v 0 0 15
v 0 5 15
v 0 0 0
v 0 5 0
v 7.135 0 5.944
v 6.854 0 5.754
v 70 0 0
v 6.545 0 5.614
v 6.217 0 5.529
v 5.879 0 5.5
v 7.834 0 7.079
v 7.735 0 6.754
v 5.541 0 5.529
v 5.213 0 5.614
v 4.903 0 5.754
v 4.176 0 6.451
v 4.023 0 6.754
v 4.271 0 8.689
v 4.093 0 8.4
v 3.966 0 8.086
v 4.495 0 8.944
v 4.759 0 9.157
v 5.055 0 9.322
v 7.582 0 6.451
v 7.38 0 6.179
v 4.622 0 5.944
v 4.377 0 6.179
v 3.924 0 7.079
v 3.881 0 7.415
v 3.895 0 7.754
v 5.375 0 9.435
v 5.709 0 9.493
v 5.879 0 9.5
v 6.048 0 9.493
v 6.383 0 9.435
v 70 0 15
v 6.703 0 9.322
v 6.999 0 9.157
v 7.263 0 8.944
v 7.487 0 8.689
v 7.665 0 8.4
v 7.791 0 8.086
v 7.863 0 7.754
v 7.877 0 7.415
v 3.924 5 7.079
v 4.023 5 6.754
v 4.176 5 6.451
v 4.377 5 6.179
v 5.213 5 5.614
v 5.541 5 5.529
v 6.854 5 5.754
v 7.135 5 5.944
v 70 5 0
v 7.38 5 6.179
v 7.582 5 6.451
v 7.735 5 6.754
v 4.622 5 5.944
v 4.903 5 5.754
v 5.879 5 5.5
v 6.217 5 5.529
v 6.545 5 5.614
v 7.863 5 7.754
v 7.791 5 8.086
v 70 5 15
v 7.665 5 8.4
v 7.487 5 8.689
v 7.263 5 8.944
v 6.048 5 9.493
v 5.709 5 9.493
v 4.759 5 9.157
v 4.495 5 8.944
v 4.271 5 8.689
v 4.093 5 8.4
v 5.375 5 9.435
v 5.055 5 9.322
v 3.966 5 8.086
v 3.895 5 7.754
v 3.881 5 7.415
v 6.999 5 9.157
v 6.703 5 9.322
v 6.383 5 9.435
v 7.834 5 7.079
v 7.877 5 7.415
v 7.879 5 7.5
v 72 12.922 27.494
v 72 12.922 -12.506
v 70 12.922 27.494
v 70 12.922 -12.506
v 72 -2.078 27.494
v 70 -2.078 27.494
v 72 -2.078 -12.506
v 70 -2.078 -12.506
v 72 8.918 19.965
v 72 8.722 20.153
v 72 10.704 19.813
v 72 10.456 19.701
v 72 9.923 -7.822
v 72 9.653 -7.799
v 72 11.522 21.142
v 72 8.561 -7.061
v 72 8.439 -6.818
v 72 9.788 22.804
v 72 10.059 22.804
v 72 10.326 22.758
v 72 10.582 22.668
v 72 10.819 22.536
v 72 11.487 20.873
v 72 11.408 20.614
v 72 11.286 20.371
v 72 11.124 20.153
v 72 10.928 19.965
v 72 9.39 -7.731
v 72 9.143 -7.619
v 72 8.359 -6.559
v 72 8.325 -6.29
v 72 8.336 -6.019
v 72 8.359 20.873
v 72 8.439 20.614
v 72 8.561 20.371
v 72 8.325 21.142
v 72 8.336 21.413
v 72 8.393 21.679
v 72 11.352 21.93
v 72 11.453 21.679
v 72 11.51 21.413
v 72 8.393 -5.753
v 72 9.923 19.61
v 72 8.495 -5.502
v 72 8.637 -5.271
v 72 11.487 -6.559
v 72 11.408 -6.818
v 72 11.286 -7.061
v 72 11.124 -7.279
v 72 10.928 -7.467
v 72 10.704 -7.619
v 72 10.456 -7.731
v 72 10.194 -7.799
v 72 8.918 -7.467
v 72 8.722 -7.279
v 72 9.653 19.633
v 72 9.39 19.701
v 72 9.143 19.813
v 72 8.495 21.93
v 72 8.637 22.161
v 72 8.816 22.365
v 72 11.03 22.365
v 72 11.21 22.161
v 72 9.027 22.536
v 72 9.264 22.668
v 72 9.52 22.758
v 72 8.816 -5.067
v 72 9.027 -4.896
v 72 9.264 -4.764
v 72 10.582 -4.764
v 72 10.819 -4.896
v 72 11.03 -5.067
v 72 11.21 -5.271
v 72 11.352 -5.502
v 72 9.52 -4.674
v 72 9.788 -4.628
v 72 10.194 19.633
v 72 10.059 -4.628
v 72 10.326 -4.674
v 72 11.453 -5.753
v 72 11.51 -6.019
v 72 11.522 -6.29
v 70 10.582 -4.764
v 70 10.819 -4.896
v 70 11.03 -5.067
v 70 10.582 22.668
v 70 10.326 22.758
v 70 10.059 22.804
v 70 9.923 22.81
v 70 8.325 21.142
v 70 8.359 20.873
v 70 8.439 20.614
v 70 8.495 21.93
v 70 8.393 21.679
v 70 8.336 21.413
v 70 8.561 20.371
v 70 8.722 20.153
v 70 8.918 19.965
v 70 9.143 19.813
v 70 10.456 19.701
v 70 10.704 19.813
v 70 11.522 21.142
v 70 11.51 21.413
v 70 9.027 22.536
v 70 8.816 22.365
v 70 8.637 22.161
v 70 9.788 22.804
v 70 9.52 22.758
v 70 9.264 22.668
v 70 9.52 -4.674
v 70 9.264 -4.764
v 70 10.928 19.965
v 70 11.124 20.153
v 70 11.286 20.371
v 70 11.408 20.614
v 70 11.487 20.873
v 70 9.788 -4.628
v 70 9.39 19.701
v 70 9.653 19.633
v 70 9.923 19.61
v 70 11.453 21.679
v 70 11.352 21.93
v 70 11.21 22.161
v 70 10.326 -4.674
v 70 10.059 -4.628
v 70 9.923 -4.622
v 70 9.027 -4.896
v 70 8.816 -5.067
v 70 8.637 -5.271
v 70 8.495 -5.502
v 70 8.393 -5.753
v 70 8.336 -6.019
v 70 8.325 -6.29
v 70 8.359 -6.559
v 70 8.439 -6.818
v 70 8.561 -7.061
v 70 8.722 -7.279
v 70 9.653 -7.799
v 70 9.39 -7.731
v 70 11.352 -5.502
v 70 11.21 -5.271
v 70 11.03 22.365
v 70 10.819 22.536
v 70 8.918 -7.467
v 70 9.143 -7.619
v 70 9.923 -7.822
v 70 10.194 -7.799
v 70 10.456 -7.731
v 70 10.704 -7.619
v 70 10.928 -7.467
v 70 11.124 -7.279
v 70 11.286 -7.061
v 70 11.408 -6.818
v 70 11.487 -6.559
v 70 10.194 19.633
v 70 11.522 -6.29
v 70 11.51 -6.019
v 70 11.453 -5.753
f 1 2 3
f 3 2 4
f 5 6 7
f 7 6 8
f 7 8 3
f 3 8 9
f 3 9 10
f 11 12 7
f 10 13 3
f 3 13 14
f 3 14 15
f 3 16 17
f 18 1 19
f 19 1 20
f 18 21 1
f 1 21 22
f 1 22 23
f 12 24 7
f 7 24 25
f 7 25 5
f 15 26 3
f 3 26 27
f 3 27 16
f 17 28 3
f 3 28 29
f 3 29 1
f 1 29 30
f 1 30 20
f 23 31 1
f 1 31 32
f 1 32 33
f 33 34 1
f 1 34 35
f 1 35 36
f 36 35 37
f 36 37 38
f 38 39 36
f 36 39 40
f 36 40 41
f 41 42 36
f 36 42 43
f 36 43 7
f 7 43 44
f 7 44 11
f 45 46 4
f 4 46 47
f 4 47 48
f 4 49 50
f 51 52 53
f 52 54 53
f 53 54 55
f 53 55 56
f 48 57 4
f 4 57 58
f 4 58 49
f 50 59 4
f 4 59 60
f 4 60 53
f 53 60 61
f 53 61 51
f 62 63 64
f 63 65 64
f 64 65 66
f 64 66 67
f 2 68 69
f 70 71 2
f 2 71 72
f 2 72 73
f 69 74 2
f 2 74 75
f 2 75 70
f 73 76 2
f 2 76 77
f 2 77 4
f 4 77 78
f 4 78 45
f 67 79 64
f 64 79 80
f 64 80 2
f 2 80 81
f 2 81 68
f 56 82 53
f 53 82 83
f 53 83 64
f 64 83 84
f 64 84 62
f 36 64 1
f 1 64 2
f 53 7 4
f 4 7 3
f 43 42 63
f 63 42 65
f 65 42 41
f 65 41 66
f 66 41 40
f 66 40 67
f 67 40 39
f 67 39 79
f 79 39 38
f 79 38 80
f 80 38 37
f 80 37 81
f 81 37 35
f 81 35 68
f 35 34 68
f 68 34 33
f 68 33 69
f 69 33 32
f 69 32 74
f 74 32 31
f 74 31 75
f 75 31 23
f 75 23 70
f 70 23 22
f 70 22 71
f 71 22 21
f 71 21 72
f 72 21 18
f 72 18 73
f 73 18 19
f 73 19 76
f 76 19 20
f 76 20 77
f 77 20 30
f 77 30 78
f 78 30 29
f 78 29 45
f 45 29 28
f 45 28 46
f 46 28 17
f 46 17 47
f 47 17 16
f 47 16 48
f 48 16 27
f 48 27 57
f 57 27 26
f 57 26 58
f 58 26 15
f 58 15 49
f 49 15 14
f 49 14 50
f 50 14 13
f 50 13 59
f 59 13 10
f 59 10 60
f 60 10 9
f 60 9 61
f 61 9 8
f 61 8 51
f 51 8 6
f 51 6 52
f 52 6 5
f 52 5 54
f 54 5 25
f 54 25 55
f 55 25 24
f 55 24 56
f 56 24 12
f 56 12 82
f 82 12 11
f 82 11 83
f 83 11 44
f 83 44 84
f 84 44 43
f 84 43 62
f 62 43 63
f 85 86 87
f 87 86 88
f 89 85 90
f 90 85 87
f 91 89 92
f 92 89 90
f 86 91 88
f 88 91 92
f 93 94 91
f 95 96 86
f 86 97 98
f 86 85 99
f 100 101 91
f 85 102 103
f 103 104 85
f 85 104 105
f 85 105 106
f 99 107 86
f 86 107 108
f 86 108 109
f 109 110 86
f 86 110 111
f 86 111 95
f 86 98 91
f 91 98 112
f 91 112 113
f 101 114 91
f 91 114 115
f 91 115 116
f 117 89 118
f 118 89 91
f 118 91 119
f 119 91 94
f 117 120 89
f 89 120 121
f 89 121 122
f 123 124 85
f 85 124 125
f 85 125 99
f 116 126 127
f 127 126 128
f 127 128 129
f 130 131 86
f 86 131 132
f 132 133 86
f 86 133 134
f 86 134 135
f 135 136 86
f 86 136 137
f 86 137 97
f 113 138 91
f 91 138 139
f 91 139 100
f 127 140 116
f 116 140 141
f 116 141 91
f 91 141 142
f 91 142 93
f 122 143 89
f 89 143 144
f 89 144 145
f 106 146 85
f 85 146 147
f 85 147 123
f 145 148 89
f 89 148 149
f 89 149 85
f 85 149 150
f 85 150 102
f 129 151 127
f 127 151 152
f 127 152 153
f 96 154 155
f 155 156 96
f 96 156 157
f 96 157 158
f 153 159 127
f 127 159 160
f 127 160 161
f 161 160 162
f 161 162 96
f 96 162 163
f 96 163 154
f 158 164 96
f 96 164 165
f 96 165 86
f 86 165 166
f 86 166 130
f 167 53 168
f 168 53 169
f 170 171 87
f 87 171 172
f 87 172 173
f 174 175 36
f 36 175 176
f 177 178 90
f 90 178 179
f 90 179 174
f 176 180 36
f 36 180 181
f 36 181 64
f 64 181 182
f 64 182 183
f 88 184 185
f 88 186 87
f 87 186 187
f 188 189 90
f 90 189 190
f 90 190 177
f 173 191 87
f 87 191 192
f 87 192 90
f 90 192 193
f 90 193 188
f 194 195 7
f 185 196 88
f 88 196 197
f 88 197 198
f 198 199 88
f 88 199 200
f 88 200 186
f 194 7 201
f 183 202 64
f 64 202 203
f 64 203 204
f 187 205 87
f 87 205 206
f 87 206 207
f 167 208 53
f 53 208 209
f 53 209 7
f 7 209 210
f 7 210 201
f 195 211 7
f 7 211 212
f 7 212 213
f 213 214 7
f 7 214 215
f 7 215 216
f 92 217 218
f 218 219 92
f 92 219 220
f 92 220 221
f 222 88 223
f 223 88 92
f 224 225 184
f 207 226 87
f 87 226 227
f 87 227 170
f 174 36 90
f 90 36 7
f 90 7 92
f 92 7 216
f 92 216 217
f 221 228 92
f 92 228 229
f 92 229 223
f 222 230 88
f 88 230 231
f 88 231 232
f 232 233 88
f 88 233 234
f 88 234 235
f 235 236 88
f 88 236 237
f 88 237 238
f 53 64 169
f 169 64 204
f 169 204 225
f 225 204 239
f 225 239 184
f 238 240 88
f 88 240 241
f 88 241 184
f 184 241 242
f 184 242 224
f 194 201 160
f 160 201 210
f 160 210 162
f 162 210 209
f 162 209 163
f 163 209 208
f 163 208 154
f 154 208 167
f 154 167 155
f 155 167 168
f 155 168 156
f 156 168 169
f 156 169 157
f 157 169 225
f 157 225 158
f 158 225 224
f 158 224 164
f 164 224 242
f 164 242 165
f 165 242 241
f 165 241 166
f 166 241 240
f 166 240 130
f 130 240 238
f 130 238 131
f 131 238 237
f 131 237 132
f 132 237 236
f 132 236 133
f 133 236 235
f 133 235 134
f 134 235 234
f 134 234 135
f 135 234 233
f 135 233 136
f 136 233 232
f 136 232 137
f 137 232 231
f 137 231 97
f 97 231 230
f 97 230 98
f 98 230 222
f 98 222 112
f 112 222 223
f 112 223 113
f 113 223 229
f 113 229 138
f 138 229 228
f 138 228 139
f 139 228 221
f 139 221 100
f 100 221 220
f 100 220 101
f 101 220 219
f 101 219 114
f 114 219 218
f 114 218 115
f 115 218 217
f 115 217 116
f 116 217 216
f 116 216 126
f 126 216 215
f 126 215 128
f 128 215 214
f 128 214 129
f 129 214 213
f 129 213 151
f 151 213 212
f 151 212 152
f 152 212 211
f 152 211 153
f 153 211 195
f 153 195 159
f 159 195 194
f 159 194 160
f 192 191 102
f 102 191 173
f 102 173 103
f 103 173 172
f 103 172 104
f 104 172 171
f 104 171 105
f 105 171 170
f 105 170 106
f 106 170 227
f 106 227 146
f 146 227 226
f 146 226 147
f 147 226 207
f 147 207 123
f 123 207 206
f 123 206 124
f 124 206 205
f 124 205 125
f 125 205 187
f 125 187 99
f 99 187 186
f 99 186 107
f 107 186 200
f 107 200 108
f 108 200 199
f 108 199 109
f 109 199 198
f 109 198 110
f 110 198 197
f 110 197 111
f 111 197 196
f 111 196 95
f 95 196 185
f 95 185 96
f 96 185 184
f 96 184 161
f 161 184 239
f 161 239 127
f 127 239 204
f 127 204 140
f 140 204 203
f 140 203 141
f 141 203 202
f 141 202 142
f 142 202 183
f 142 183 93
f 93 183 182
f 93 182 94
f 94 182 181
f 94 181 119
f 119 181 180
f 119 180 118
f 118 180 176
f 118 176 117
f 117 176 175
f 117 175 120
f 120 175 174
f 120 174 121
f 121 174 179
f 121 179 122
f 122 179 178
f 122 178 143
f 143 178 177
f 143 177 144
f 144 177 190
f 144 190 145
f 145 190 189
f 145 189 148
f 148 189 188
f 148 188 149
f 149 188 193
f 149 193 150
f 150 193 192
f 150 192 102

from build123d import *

# Parameters (mm, degrees)
SKETCH_3_W          = 70
SKETCH_3_H          = 5
EXTRUDE_3_DEPTH     = 15
CUT_EXTRUDE_1_REACH = 73.764
SKETCH_4_R          = 2
SKETCH_7_W          = 40
SKETCH_7_H          = 15
EXTRUDE_5_DEPTH     = 2
CUT_EXTRUDE_2_REACH = 80.147
SKETCH_9_R          = 1.6


with BuildPart() as part:
    # 草图3 → 凸台-拉伸3 (new body)
    with BuildSketch(Plane.XY):
        with Locations((35, 2.5)):
            Rectangle(SKETCH_3_W, SKETCH_3_H)
    extrude(amount=EXTRUDE_3_DEPTH)

    # 草图4 → 切除-拉伸1 (cut, up to next)
    with BuildSketch(Plane(origin=(0, 0, 0), x_dir=(1, 0, 0), z_dir=(0, 1, 0)), mode=Mode.PRIVATE) as cut_extrude_1_sk1:
        with Locations((5.878824242, -7.5)):
            Circle(SKETCH_4_R)
    cut_extrude_1_tool1 = extrude(cut_extrude_1_sk1.sketch, amount=CUT_EXTRUDE_1_REACH, mode=Mode.PRIVATE) & part.part
    add(cut_extrude_1_tool1.solids().sort_by_distance((5.878824, 0, 7.5))[0], mode=Mode.SUBTRACT)

    # 草图7 → 凸台-拉伸5 (add)
    with BuildSketch(Plane(origin=(70, 0, 0), x_dir=(0, 0, -1), z_dir=(1, 0, 0))):
        with Locations((-7.494082881, 5.421691662)):
            Rectangle(SKETCH_7_W, SKETCH_7_H)
    extrude(amount=EXTRUDE_5_DEPTH)

    # 草图9 → 切除-拉伸2 (cut, up to next)
    with BuildSketch(Plane(origin=(72, 0, 0), x_dir=(0, 0, -1), z_dir=(1, 0, 0)), mode=Mode.PRIVATE) as cut_extrude_2_sk1:
        with Locations((-21.210082881, 9.92331395)):
            Circle(SKETCH_9_R)
    cut_extrude_2_tool1 = extrude(cut_extrude_2_sk1.sketch, amount=-CUT_EXTRUDE_2_REACH, mode=Mode.PRIVATE) & part.part
    # 草图9 → 切除-拉伸2 (cut, up to next)
    with BuildSketch(Plane(origin=(72, 0, 0), x_dir=(0, 0, -1), z_dir=(1, 0, 0)), mode=Mode.PRIVATE) as cut_extrude_2_sk2:
        with Locations((6.221917119, 9.92331395)):
            Circle(SKETCH_9_R)
    cut_extrude_2_tool2 = extrude(cut_extrude_2_sk2.sketch, amount=-CUT_EXTRUDE_2_REACH, mode=Mode.PRIVATE) & part.part
    add(cut_extrude_2_tool1.solids().sort_by_distance((72, 9.923314, 21.210083))[0], mode=Mode.SUBTRACT)
    add(cut_extrude_2_tool2.solids().sort_by_distance((72, 9.923314, -6.221917))[0], mode=Mode.SUBTRACT)


solid = part.part
